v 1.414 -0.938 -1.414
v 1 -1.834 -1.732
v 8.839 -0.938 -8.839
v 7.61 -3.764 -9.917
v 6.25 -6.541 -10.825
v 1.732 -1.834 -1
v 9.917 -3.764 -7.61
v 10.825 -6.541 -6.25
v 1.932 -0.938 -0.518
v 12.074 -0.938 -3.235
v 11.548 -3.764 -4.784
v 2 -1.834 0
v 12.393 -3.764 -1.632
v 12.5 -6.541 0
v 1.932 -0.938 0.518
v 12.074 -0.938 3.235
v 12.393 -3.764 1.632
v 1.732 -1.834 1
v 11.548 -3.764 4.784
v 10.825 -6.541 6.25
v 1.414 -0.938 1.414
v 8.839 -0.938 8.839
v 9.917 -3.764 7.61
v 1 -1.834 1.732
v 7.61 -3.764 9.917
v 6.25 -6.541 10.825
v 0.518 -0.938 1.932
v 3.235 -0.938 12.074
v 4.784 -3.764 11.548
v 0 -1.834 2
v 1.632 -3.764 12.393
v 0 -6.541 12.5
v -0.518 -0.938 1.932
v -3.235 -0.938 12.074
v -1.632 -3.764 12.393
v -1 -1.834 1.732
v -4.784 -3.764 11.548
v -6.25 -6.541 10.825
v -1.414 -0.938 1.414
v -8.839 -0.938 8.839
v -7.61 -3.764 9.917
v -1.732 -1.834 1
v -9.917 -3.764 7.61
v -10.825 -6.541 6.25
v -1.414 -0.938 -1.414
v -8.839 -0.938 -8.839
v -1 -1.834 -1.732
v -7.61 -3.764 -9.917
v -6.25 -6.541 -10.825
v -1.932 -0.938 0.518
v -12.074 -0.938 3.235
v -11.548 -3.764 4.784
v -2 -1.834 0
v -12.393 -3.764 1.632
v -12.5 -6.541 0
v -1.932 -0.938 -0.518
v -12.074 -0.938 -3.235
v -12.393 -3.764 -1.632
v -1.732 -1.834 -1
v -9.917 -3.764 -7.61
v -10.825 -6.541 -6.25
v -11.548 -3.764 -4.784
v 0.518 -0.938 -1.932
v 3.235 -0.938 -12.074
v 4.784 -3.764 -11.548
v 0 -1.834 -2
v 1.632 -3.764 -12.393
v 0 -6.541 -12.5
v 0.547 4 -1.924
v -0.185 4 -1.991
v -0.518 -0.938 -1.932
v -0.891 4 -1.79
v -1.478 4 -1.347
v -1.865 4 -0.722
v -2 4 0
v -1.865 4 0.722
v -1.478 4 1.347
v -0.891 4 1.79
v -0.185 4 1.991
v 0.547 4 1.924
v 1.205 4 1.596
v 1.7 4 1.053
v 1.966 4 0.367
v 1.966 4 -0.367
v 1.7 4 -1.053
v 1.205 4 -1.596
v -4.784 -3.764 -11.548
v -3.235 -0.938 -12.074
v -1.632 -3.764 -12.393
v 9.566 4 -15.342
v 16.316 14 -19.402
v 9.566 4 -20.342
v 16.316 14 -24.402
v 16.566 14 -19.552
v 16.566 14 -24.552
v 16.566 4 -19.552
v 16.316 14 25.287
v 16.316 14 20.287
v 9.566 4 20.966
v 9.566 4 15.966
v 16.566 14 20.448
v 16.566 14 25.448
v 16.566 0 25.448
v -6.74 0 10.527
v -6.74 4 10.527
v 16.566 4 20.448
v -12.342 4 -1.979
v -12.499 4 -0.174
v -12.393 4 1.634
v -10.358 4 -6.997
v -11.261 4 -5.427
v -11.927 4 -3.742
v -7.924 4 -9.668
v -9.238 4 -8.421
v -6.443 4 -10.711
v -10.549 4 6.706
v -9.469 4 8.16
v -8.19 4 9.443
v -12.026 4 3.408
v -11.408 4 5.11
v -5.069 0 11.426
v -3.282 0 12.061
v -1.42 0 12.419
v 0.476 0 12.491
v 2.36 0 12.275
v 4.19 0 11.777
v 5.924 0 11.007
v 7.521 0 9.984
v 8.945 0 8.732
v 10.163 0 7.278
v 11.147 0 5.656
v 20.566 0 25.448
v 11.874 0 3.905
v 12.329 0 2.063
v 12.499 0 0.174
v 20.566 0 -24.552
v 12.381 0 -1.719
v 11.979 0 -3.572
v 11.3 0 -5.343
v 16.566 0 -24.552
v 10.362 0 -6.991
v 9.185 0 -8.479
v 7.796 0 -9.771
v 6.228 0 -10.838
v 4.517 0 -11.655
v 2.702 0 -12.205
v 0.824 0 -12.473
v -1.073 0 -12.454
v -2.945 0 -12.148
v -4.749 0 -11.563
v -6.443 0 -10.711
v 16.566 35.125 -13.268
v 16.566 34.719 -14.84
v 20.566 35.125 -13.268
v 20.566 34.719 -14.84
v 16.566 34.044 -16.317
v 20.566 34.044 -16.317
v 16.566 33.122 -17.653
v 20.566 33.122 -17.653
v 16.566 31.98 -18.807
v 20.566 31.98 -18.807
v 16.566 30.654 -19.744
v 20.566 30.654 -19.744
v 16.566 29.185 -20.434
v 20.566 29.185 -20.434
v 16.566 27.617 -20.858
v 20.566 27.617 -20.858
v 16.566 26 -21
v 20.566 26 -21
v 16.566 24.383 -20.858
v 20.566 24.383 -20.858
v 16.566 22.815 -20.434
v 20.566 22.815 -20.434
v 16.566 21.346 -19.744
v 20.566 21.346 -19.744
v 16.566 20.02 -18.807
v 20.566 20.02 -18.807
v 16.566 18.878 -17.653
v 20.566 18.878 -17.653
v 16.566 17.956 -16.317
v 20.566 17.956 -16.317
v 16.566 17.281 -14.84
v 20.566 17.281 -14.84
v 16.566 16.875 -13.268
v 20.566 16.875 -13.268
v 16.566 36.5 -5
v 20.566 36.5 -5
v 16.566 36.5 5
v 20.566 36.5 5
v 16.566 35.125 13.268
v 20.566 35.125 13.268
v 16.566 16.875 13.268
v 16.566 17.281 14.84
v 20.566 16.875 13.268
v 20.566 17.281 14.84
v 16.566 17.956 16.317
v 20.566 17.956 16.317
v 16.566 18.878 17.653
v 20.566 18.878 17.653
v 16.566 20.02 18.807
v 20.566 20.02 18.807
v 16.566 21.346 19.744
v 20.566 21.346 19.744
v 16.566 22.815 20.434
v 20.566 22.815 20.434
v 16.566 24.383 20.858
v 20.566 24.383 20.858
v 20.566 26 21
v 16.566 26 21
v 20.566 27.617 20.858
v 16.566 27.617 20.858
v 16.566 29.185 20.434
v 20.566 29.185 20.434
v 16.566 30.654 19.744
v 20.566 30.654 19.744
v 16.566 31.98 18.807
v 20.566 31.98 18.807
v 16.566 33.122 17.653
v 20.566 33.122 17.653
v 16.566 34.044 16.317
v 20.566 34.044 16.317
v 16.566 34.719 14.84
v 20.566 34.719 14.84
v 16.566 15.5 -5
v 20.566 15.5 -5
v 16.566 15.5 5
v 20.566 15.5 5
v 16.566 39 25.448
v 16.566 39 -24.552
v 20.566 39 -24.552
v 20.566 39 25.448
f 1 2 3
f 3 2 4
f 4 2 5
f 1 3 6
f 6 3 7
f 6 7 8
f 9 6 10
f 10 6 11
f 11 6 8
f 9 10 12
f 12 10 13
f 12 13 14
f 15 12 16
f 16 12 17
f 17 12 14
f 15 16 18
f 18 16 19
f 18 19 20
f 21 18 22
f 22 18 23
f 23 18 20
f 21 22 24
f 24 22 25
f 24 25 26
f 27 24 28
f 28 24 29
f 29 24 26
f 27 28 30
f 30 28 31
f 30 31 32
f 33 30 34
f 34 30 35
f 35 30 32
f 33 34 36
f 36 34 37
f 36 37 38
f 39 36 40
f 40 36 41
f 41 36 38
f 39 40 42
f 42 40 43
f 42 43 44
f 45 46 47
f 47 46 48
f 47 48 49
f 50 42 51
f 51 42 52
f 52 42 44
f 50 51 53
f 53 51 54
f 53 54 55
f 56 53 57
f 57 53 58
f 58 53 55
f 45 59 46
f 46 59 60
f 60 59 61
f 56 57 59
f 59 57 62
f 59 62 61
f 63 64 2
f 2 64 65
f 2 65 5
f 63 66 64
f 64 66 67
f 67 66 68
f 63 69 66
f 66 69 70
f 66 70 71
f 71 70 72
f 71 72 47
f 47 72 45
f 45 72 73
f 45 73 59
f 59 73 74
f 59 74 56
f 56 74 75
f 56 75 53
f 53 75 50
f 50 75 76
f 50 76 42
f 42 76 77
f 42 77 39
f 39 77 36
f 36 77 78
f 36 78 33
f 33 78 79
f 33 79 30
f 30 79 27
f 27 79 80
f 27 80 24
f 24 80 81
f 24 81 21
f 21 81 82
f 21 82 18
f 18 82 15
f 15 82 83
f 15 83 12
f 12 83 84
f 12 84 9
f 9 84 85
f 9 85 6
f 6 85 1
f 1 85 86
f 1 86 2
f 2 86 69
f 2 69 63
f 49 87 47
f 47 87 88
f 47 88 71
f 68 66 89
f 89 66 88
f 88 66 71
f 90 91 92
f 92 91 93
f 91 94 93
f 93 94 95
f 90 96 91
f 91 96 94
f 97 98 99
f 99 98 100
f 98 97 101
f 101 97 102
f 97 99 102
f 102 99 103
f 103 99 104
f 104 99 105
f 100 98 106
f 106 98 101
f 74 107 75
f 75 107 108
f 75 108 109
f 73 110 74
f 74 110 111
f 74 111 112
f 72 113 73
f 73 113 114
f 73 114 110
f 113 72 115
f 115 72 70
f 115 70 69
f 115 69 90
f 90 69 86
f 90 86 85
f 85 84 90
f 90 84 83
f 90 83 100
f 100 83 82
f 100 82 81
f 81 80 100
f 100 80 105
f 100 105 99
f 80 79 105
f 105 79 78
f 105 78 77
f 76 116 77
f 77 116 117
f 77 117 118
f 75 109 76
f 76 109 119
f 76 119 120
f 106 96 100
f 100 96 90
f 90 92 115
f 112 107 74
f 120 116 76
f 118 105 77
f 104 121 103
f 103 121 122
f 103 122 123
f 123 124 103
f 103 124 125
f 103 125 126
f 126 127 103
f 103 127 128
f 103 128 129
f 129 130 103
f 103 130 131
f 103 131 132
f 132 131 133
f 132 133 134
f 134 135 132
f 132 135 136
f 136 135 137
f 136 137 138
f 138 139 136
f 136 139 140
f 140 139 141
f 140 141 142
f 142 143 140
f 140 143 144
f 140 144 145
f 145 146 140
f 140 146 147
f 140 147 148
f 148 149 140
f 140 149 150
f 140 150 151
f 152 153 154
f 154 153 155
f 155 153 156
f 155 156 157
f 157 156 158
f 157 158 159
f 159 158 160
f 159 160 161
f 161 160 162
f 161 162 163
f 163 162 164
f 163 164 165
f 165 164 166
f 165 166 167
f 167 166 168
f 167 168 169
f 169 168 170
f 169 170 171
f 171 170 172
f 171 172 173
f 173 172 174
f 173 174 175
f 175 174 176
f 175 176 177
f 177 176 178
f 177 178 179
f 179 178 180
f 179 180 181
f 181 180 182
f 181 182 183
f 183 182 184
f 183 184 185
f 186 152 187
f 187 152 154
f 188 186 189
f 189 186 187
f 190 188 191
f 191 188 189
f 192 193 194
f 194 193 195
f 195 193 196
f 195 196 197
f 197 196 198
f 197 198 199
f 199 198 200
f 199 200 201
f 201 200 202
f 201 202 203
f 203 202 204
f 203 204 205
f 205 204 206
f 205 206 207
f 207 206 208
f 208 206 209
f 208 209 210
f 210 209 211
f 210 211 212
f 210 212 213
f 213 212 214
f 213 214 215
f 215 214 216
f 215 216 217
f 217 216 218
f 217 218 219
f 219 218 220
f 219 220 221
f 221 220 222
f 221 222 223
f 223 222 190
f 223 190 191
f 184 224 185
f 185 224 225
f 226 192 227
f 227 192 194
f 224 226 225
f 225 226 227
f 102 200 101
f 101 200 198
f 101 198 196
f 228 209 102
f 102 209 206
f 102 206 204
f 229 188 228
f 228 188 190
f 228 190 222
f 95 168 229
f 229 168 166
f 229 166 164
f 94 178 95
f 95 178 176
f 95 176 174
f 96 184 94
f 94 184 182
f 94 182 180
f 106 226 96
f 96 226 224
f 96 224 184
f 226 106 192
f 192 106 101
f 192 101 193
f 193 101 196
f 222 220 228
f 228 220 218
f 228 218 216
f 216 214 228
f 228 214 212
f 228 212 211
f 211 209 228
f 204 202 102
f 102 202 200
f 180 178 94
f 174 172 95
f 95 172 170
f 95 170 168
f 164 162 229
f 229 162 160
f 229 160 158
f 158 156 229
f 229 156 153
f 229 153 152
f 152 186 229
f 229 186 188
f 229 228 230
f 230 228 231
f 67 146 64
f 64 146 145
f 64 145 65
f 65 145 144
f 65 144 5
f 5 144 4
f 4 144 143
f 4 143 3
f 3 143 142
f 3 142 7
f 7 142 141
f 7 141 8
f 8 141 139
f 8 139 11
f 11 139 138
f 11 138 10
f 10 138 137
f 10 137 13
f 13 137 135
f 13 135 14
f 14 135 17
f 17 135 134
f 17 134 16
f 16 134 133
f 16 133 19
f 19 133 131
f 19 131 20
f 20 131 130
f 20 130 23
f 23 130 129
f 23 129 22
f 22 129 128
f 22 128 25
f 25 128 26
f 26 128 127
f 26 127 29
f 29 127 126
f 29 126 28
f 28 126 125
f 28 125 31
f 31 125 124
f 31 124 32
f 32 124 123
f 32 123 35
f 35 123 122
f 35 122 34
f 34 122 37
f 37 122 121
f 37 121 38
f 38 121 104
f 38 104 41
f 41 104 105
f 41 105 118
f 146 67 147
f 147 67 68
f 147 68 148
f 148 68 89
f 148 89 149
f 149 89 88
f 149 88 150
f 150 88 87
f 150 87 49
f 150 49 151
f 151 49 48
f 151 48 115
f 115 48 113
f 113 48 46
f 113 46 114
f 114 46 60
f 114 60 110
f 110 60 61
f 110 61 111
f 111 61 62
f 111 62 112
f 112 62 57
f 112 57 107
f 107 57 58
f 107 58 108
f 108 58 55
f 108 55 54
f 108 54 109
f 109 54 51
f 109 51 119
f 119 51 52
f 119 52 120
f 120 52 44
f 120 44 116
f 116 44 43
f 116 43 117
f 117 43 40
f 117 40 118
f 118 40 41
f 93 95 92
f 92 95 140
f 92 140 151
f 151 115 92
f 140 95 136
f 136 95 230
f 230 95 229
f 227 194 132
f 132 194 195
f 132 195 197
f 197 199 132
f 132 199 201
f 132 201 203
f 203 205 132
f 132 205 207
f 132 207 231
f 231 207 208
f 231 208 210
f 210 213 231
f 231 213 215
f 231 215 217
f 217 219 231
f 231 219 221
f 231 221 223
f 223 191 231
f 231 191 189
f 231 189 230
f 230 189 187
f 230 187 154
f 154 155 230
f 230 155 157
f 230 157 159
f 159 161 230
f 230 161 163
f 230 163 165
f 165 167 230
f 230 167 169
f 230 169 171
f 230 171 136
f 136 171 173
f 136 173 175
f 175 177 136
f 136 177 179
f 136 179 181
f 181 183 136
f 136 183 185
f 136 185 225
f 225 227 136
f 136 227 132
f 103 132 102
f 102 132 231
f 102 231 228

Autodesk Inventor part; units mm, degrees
ref_plane "YZ Plane" through (0, 0, 0) normal (1, 0, 0) x (0, 1, 0)
ref_plane "XZ Plane" through (0, 0, 0) normal (0, 1, 0) x (-1, 0, 0)
sketch "Náčrt1" plane through (0, 0, 0) normal (0, 1, 0) x (-1, 0, 0)
  circle A0 centre (0, 0) radius 2
  circle A1 centre (0, 0) radius 12.5
  line L0 (6.7396, 10.5275) -> (-16.566, 25.4475)
  line L1 (-16.566, 25.4475) -> (-16.566, -24.5525)
  line L2 (-16.566, -24.5525) -> (6.4433, -10.7114)
  line L3 (-16.566, 25.4475) -> (-20.566, 25.4475)
  line L4 (-20.566, 25.4475) -> (-20.566, -24.5525)
  line L5 (-20.566, -24.5525) -> (-16.566, -24.5525)
  line L6 (-16.566, -24.5525) -> (-16.566, 25.4475)
  dimension "d0" = 4
  dimension "d1" = 25
  dimension "d2" = 50
  dimension "d3" = 4
extrude "Vysunutí1" add sketch "Náčrt1" along normal blind 4
sketch "Náčrt2" plane through (0, 4, 0) normal (0, 1, 0) x (1, 0, 0)
  line L0 (20.566, 24.5525) -> (16.566, 24.5525) projected
  line L1 (20.566, -25.4475) -> (20.566, 24.5525) projected
  line L2 (16.566, 24.5525) -> (20.566, 24.5525)
  line L3 (20.566, 24.5525) -> (20.566, -25.4475)
  line L4 (20.566, -25.4475) -> (16.566, -25.4475)
  line L5 (16.566, -25.4475) -> (16.566, 24.5525)
  point P0 (0, 0)
extrude "Vysunutí2" add sketch "Náčrt2" along normal blind 35
sketch "Náčrt3" plane through (20.566, 0, 25.4475) normal (1, 0, 0) x (0, 0, -1)
  circle A0 centre (13.6975, 26) radius 9.25
  circle A1 centre (37.1975, 26) radius 9.25
  line L0 (0, 39) -> (50, 39) projected
  line L1 (25.4475, 0) -> (25.4475, 39)
  line L2 (50, 39) -> (0, 39) projected
  line L3 (20.4475, 15.5) -> (30.4475, 15.5)
  line L4 (20.4475, 15.5) -> (12.1796, 16.8754)
  line L5 (30.4475, 15.5) -> (38.7155, 16.8754)
  line L6 (20.4475, 36.5) -> (30.4475, 36.5)
  line L7 (20.4475, 36.5) -> (12.1796, 35.1246)
  line L8 (30.4475, 36.5) -> (38.7155, 35.1246)
  dimension "d8" = 18.5
  dimension "d9" = 23.5
  dimension "d10" = 13
  dimension "d11" = 13
  dimension "d12" = 11.75
  dimension "d13" = 10
  dimension "d14" = 5
  dimension "d15" = 10.5
  dimension "d16" = 18.5
  dimension "d17" = 10
  dimension "d18" = 5
  dimension "d19" = 10.5
extrude "Vysunutí3" cut sketch "Náčrt3" against normal blind 35
sketch "Náčrt4" plane through (0, 0, 0) normal (0, -1, 0) x (1, 0, 0)
  circle A0 centre (0, 0) radius 2 projected
  circle A1 centre (0, 0) radius 12.5
extrude "Vysunutí4" add sketch "Náčrt4" along normal blind 7
sketch "Náčrt5" plane through (0, 4, 0) normal (0, 1, 0) x (1, 0, 0)
  line L0 (16.566, 24.5525) -> (-6.4433, 10.7114) projected
  line L1 (9.566, 20.3417) -> (9.566, 15.3417)
  line L2 (-6.7396, -10.5275) -> (16.566, -25.4475) projected
  line L3 (9.566, -20.9662) -> (9.566, -15.9662)
  line L4 (9.566, -15.9662) -> (16.566, -20.4475)
  line L5 (16.566, -25.4475) -> (16.566, 24.5525) projected
  line L6 (9.566, 15.3417) -> (16.566, 19.5525)
  line L7 (16.566, 24.5525) -> (16.566, -25.4475) projected
  point P0 (0, 0)
  dimension "d24" = 5
  dimension "d25" = 5
  dimension "d30" = 7
  dimension "d31" = 7
extrude "Vysunutí5" add sketch "Náčrt5" along normal blind 10
chamfer "Zkosení1" distance 6.75 distance2 10 1 edges at (9.566, 14, 18.4662) measured on face at (11.8993, 14, 19.1266)
chamfer "Zkosení2" distance 6.75 distance2 10 1 edges at (9.566, 14, -17.8417) measured on face at (11.8993, 14, -18.4119)
ref_plane "Pracovní rovina1" through (0, 0, 0) normal (0.2588, 0, 0.9659) x (0, 1, 0)
sketch "Náčrt6" plane through (0, -7, 0) normal (0, -1, 0) x (1, 0, 0)
  point P0 (0, 0)
sketch "Náčrt7" plane through (0, 0, 0) normal (0.2588, 0, 0.9659) x (0, 1, 0)
  line L0 (-0.9378, 0) -> (-7, -3.5)
  line L1 (-7, -3.5) -> (-7, 3.5)
  line L2 (-7, 3.5) -> (-0.9378, 0)
  line L3 (-7, 12.5) -> (-7, -12.5) projected
  line L4 (0, 3.4515) -> (4, 3.4515) projected
  line L5 (0, 9.2347) -> (0, 3.4515) projected
  line L6 (0, 9.2347) -> (4, 9.2347) projected
  line L7 (4, 3.4515) -> (4, 9.2347) projected
  point P0 (0, 0)
  point P1 (-4.9793, 0)
  point P2 (-7, 0)
  point P3 (-7, 0)
  dimension "d39" = 7
extrude "Vysunutí6" cut sketch "Náčrt7" against normal blind 18.5 contours L0 L1 L2
pattern_circular "Kruhové pole1" count 12 over 360 about axis through (0, -10, 0) along (0, 1, 0) of "Vysunutí6"
properties part number "drzak"
